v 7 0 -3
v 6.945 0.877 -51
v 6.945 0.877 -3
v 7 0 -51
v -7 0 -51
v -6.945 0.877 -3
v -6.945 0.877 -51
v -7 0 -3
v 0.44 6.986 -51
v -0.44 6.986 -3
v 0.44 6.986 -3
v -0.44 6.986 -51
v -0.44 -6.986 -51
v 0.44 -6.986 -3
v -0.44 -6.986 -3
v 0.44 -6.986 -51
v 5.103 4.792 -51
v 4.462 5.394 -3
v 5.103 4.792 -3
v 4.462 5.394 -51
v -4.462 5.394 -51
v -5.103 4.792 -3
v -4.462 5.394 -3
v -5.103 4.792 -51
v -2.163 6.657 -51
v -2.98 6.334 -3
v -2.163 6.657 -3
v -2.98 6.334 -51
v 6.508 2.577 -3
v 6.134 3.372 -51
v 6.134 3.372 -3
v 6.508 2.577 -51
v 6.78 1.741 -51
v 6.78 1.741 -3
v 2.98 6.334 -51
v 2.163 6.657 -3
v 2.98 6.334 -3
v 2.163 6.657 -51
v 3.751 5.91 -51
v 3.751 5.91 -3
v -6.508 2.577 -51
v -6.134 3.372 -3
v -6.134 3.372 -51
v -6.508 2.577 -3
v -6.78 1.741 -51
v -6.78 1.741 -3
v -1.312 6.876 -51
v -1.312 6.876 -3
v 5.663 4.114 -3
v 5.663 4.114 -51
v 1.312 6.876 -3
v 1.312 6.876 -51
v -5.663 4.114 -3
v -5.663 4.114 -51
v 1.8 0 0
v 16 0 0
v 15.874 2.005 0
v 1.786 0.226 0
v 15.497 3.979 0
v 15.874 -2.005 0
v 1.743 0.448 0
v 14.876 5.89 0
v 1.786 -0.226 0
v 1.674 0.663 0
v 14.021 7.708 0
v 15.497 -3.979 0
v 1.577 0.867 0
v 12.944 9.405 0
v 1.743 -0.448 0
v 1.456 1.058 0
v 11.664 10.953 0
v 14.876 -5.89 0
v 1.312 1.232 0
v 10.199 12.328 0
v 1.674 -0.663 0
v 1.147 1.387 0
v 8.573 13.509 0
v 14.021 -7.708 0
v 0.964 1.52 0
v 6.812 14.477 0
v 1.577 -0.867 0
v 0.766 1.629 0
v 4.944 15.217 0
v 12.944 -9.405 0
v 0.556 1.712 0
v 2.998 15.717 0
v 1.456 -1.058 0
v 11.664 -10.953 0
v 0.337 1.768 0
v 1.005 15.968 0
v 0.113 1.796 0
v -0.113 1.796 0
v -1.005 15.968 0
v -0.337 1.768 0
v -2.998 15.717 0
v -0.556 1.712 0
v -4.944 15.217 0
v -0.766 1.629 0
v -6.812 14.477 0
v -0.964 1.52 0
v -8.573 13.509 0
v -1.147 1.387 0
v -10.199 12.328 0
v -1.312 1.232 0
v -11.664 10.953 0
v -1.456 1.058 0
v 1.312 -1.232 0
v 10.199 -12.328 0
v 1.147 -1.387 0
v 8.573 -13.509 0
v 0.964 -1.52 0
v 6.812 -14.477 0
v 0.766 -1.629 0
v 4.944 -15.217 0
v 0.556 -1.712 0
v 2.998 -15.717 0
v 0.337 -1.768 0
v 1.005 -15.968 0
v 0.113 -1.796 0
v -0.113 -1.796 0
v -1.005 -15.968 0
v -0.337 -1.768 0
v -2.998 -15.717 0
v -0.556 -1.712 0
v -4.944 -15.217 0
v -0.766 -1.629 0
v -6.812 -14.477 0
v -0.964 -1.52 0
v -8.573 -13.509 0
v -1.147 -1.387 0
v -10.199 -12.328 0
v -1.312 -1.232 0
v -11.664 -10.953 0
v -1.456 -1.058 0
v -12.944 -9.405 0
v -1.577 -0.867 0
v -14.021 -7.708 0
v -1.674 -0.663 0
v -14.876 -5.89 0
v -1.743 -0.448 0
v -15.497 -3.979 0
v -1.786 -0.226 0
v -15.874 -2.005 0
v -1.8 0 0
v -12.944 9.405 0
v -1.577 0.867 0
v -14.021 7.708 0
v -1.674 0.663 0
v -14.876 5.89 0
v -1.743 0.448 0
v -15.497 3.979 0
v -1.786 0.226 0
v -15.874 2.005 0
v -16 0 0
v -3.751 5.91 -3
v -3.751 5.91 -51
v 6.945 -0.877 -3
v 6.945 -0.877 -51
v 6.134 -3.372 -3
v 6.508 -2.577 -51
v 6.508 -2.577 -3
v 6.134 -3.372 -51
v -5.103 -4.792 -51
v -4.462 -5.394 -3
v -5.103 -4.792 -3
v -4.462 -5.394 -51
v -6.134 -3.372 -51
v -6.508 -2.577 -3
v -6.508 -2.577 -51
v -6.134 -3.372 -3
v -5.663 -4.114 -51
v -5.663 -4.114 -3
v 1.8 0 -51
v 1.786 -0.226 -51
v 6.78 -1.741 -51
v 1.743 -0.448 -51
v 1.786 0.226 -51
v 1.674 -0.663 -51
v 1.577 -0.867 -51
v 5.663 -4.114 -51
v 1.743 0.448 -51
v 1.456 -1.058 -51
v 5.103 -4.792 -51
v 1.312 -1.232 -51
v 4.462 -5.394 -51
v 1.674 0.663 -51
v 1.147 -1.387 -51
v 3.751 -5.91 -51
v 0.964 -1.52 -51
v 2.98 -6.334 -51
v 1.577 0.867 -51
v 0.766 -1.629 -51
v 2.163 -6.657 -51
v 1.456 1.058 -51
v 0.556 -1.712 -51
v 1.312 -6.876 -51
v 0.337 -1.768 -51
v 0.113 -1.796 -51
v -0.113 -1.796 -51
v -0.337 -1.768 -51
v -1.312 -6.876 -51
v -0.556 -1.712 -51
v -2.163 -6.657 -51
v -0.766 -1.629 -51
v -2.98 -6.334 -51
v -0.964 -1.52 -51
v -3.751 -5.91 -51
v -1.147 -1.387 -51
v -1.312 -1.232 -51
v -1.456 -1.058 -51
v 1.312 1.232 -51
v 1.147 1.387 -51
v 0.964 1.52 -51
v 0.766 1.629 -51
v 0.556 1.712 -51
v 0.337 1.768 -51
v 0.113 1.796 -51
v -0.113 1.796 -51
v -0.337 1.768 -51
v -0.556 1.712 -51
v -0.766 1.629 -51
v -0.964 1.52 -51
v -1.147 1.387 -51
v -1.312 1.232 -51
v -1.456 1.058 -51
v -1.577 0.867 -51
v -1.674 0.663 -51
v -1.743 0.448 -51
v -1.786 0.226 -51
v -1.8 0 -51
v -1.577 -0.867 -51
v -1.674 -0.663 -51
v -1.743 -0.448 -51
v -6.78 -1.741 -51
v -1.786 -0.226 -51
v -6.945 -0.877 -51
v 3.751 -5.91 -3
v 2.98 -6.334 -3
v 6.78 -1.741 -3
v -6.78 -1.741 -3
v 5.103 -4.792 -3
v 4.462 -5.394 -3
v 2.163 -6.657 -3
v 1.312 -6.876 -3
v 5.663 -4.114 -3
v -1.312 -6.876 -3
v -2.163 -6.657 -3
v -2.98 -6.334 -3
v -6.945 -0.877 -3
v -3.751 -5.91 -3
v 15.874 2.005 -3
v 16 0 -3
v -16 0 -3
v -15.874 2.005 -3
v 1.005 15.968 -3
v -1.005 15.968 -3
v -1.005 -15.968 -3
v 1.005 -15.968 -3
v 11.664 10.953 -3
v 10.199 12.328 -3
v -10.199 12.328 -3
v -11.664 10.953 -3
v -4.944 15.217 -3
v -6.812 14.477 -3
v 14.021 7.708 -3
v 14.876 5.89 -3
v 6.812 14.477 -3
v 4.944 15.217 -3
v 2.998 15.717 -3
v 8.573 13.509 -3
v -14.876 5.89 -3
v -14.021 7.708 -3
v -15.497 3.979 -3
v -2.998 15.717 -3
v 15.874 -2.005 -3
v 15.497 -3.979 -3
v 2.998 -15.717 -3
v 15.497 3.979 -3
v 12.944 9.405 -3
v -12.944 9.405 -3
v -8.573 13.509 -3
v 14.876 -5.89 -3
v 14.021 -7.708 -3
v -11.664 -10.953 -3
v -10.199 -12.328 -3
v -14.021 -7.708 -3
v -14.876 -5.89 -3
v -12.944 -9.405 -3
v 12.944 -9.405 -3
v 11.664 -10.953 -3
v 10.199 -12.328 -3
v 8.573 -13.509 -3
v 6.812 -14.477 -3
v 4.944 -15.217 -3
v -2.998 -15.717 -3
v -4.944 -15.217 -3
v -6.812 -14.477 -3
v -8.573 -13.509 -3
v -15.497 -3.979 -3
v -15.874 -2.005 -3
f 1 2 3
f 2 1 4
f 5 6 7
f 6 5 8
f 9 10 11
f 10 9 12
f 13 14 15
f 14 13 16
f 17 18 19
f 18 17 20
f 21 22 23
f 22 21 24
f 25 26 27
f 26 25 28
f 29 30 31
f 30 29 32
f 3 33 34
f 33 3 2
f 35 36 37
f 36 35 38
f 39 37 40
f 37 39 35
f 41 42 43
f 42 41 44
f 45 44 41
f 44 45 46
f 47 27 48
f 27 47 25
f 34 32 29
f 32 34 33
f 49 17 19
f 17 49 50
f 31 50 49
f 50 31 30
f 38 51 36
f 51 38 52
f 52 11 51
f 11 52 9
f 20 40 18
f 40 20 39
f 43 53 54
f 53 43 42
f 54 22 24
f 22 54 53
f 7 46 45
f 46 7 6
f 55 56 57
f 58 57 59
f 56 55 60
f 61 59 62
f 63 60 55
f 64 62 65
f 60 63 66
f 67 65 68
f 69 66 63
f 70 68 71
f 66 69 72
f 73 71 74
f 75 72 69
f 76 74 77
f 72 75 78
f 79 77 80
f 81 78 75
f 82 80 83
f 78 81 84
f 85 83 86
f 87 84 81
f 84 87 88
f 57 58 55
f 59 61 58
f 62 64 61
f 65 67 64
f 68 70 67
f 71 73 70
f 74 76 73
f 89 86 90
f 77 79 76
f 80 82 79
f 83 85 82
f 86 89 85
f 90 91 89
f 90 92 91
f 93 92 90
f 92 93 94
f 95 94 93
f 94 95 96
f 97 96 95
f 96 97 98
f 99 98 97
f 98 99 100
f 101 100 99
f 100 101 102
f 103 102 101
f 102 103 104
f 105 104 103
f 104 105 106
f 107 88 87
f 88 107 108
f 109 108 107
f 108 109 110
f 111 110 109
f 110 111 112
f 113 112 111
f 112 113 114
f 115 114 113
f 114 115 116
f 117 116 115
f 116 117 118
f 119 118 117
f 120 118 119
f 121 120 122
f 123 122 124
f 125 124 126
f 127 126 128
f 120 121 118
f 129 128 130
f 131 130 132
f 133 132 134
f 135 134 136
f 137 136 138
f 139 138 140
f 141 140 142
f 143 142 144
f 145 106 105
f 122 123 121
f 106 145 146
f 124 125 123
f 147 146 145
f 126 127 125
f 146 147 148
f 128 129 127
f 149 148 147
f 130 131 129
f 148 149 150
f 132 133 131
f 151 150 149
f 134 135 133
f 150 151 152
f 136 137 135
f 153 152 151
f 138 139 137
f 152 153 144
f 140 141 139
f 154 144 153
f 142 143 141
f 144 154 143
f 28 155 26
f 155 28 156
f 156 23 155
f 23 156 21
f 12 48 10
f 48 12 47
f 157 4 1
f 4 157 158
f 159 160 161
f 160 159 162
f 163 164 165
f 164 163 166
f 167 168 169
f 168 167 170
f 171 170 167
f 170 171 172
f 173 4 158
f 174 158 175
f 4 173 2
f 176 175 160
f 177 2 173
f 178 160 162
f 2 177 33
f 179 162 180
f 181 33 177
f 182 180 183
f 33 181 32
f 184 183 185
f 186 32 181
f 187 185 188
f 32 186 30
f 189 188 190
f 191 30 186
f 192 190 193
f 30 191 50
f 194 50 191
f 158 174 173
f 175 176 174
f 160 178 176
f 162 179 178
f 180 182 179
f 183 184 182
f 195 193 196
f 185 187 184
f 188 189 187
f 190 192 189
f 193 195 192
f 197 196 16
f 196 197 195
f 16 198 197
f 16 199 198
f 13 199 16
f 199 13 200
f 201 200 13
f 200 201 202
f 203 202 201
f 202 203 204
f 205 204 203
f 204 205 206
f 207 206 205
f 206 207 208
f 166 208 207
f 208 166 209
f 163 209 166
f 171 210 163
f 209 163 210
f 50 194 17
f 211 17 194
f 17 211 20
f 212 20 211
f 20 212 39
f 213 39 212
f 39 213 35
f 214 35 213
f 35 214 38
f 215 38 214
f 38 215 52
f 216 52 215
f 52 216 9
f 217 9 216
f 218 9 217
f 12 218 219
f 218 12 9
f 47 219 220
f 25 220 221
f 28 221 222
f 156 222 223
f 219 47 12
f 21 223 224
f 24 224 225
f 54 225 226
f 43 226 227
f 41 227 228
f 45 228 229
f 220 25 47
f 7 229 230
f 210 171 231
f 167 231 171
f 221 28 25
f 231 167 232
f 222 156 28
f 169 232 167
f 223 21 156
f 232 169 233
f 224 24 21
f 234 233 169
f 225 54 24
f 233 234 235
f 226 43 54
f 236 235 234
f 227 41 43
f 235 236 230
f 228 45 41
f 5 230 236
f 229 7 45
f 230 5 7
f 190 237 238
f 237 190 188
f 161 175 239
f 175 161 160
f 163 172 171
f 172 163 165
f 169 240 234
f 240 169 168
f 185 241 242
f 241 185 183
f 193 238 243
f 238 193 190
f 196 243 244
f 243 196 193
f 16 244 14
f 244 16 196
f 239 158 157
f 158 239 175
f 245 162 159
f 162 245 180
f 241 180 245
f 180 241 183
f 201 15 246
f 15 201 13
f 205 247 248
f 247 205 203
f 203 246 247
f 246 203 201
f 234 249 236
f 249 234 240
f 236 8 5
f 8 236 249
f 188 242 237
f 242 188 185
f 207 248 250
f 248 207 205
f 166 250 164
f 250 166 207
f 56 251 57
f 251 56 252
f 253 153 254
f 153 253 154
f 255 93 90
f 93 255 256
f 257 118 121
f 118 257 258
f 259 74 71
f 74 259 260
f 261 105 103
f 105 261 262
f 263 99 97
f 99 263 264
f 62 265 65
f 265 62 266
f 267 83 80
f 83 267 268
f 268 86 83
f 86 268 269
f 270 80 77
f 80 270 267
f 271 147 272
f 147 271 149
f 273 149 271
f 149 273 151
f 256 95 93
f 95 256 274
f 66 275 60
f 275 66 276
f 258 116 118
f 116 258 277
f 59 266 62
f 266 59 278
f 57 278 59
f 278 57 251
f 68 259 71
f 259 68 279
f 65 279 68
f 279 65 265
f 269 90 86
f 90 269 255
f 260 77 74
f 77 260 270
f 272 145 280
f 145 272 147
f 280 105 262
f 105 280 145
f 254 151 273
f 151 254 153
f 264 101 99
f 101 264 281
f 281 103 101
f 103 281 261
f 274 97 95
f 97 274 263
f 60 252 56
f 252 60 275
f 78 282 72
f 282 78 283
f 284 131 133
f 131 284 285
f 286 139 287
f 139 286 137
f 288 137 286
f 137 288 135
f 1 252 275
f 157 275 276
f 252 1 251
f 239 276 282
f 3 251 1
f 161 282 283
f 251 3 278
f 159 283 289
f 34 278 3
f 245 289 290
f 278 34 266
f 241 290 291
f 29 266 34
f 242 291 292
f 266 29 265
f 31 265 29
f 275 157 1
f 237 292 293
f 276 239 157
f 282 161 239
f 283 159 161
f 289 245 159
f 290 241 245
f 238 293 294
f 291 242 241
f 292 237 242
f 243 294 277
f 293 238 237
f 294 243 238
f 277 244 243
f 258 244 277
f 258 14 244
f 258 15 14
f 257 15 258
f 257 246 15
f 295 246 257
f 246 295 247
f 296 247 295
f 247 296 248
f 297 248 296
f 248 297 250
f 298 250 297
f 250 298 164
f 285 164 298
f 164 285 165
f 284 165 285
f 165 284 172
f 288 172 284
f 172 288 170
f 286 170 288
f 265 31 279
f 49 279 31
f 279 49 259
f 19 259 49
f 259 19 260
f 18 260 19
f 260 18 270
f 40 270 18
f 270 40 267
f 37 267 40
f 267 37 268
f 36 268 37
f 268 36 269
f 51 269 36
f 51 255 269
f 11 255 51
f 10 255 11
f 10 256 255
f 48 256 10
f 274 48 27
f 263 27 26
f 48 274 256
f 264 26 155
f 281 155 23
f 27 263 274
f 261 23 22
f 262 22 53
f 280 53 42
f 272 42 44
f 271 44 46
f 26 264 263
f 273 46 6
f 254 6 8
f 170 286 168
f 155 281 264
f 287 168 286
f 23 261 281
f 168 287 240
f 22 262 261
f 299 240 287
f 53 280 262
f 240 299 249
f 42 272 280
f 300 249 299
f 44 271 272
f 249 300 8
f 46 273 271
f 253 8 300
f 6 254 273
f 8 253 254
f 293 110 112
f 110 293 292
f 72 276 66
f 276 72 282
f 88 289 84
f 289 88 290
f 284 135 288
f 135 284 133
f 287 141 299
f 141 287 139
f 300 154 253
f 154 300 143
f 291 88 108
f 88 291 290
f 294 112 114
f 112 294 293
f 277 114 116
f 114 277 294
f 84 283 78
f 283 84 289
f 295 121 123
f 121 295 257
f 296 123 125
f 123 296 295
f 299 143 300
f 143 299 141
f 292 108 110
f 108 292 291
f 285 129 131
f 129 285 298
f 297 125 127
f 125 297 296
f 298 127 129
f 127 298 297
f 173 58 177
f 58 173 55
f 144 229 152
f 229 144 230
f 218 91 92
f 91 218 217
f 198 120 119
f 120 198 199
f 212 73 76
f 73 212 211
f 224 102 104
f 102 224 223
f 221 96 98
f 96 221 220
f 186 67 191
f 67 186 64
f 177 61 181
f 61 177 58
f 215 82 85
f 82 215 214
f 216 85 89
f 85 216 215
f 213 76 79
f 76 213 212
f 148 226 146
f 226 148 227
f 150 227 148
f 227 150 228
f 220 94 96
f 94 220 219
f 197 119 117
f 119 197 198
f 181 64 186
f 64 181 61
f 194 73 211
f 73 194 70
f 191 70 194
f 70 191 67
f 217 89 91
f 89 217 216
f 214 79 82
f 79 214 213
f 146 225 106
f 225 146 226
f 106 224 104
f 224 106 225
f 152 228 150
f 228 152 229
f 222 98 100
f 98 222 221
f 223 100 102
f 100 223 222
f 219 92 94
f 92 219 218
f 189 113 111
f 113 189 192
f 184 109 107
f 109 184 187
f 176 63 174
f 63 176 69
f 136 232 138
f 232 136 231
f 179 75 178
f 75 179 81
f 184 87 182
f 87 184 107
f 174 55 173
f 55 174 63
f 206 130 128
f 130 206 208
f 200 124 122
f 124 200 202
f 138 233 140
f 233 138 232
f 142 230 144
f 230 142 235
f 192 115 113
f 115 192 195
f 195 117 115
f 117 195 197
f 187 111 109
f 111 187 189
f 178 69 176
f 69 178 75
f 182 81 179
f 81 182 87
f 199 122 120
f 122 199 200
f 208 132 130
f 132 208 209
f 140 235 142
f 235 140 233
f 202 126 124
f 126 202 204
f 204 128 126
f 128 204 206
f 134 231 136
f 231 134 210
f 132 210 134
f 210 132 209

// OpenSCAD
$fn = 50;


difference() {
	union() {
		translate(v = [0, 0, -51.0000000000]) {
			cylinder(h = 51, r = 7.0000000000);
		}
		translate(v = [0, 0, -3.0000000000]) {
			cylinder(h = 3, r = 16.0000000000);
		}
	}
	union() {
		#translate(v = [0, 0, -51]) {
			cylinder(h = 51, r = 1.8000000000);
		}
	}
}
